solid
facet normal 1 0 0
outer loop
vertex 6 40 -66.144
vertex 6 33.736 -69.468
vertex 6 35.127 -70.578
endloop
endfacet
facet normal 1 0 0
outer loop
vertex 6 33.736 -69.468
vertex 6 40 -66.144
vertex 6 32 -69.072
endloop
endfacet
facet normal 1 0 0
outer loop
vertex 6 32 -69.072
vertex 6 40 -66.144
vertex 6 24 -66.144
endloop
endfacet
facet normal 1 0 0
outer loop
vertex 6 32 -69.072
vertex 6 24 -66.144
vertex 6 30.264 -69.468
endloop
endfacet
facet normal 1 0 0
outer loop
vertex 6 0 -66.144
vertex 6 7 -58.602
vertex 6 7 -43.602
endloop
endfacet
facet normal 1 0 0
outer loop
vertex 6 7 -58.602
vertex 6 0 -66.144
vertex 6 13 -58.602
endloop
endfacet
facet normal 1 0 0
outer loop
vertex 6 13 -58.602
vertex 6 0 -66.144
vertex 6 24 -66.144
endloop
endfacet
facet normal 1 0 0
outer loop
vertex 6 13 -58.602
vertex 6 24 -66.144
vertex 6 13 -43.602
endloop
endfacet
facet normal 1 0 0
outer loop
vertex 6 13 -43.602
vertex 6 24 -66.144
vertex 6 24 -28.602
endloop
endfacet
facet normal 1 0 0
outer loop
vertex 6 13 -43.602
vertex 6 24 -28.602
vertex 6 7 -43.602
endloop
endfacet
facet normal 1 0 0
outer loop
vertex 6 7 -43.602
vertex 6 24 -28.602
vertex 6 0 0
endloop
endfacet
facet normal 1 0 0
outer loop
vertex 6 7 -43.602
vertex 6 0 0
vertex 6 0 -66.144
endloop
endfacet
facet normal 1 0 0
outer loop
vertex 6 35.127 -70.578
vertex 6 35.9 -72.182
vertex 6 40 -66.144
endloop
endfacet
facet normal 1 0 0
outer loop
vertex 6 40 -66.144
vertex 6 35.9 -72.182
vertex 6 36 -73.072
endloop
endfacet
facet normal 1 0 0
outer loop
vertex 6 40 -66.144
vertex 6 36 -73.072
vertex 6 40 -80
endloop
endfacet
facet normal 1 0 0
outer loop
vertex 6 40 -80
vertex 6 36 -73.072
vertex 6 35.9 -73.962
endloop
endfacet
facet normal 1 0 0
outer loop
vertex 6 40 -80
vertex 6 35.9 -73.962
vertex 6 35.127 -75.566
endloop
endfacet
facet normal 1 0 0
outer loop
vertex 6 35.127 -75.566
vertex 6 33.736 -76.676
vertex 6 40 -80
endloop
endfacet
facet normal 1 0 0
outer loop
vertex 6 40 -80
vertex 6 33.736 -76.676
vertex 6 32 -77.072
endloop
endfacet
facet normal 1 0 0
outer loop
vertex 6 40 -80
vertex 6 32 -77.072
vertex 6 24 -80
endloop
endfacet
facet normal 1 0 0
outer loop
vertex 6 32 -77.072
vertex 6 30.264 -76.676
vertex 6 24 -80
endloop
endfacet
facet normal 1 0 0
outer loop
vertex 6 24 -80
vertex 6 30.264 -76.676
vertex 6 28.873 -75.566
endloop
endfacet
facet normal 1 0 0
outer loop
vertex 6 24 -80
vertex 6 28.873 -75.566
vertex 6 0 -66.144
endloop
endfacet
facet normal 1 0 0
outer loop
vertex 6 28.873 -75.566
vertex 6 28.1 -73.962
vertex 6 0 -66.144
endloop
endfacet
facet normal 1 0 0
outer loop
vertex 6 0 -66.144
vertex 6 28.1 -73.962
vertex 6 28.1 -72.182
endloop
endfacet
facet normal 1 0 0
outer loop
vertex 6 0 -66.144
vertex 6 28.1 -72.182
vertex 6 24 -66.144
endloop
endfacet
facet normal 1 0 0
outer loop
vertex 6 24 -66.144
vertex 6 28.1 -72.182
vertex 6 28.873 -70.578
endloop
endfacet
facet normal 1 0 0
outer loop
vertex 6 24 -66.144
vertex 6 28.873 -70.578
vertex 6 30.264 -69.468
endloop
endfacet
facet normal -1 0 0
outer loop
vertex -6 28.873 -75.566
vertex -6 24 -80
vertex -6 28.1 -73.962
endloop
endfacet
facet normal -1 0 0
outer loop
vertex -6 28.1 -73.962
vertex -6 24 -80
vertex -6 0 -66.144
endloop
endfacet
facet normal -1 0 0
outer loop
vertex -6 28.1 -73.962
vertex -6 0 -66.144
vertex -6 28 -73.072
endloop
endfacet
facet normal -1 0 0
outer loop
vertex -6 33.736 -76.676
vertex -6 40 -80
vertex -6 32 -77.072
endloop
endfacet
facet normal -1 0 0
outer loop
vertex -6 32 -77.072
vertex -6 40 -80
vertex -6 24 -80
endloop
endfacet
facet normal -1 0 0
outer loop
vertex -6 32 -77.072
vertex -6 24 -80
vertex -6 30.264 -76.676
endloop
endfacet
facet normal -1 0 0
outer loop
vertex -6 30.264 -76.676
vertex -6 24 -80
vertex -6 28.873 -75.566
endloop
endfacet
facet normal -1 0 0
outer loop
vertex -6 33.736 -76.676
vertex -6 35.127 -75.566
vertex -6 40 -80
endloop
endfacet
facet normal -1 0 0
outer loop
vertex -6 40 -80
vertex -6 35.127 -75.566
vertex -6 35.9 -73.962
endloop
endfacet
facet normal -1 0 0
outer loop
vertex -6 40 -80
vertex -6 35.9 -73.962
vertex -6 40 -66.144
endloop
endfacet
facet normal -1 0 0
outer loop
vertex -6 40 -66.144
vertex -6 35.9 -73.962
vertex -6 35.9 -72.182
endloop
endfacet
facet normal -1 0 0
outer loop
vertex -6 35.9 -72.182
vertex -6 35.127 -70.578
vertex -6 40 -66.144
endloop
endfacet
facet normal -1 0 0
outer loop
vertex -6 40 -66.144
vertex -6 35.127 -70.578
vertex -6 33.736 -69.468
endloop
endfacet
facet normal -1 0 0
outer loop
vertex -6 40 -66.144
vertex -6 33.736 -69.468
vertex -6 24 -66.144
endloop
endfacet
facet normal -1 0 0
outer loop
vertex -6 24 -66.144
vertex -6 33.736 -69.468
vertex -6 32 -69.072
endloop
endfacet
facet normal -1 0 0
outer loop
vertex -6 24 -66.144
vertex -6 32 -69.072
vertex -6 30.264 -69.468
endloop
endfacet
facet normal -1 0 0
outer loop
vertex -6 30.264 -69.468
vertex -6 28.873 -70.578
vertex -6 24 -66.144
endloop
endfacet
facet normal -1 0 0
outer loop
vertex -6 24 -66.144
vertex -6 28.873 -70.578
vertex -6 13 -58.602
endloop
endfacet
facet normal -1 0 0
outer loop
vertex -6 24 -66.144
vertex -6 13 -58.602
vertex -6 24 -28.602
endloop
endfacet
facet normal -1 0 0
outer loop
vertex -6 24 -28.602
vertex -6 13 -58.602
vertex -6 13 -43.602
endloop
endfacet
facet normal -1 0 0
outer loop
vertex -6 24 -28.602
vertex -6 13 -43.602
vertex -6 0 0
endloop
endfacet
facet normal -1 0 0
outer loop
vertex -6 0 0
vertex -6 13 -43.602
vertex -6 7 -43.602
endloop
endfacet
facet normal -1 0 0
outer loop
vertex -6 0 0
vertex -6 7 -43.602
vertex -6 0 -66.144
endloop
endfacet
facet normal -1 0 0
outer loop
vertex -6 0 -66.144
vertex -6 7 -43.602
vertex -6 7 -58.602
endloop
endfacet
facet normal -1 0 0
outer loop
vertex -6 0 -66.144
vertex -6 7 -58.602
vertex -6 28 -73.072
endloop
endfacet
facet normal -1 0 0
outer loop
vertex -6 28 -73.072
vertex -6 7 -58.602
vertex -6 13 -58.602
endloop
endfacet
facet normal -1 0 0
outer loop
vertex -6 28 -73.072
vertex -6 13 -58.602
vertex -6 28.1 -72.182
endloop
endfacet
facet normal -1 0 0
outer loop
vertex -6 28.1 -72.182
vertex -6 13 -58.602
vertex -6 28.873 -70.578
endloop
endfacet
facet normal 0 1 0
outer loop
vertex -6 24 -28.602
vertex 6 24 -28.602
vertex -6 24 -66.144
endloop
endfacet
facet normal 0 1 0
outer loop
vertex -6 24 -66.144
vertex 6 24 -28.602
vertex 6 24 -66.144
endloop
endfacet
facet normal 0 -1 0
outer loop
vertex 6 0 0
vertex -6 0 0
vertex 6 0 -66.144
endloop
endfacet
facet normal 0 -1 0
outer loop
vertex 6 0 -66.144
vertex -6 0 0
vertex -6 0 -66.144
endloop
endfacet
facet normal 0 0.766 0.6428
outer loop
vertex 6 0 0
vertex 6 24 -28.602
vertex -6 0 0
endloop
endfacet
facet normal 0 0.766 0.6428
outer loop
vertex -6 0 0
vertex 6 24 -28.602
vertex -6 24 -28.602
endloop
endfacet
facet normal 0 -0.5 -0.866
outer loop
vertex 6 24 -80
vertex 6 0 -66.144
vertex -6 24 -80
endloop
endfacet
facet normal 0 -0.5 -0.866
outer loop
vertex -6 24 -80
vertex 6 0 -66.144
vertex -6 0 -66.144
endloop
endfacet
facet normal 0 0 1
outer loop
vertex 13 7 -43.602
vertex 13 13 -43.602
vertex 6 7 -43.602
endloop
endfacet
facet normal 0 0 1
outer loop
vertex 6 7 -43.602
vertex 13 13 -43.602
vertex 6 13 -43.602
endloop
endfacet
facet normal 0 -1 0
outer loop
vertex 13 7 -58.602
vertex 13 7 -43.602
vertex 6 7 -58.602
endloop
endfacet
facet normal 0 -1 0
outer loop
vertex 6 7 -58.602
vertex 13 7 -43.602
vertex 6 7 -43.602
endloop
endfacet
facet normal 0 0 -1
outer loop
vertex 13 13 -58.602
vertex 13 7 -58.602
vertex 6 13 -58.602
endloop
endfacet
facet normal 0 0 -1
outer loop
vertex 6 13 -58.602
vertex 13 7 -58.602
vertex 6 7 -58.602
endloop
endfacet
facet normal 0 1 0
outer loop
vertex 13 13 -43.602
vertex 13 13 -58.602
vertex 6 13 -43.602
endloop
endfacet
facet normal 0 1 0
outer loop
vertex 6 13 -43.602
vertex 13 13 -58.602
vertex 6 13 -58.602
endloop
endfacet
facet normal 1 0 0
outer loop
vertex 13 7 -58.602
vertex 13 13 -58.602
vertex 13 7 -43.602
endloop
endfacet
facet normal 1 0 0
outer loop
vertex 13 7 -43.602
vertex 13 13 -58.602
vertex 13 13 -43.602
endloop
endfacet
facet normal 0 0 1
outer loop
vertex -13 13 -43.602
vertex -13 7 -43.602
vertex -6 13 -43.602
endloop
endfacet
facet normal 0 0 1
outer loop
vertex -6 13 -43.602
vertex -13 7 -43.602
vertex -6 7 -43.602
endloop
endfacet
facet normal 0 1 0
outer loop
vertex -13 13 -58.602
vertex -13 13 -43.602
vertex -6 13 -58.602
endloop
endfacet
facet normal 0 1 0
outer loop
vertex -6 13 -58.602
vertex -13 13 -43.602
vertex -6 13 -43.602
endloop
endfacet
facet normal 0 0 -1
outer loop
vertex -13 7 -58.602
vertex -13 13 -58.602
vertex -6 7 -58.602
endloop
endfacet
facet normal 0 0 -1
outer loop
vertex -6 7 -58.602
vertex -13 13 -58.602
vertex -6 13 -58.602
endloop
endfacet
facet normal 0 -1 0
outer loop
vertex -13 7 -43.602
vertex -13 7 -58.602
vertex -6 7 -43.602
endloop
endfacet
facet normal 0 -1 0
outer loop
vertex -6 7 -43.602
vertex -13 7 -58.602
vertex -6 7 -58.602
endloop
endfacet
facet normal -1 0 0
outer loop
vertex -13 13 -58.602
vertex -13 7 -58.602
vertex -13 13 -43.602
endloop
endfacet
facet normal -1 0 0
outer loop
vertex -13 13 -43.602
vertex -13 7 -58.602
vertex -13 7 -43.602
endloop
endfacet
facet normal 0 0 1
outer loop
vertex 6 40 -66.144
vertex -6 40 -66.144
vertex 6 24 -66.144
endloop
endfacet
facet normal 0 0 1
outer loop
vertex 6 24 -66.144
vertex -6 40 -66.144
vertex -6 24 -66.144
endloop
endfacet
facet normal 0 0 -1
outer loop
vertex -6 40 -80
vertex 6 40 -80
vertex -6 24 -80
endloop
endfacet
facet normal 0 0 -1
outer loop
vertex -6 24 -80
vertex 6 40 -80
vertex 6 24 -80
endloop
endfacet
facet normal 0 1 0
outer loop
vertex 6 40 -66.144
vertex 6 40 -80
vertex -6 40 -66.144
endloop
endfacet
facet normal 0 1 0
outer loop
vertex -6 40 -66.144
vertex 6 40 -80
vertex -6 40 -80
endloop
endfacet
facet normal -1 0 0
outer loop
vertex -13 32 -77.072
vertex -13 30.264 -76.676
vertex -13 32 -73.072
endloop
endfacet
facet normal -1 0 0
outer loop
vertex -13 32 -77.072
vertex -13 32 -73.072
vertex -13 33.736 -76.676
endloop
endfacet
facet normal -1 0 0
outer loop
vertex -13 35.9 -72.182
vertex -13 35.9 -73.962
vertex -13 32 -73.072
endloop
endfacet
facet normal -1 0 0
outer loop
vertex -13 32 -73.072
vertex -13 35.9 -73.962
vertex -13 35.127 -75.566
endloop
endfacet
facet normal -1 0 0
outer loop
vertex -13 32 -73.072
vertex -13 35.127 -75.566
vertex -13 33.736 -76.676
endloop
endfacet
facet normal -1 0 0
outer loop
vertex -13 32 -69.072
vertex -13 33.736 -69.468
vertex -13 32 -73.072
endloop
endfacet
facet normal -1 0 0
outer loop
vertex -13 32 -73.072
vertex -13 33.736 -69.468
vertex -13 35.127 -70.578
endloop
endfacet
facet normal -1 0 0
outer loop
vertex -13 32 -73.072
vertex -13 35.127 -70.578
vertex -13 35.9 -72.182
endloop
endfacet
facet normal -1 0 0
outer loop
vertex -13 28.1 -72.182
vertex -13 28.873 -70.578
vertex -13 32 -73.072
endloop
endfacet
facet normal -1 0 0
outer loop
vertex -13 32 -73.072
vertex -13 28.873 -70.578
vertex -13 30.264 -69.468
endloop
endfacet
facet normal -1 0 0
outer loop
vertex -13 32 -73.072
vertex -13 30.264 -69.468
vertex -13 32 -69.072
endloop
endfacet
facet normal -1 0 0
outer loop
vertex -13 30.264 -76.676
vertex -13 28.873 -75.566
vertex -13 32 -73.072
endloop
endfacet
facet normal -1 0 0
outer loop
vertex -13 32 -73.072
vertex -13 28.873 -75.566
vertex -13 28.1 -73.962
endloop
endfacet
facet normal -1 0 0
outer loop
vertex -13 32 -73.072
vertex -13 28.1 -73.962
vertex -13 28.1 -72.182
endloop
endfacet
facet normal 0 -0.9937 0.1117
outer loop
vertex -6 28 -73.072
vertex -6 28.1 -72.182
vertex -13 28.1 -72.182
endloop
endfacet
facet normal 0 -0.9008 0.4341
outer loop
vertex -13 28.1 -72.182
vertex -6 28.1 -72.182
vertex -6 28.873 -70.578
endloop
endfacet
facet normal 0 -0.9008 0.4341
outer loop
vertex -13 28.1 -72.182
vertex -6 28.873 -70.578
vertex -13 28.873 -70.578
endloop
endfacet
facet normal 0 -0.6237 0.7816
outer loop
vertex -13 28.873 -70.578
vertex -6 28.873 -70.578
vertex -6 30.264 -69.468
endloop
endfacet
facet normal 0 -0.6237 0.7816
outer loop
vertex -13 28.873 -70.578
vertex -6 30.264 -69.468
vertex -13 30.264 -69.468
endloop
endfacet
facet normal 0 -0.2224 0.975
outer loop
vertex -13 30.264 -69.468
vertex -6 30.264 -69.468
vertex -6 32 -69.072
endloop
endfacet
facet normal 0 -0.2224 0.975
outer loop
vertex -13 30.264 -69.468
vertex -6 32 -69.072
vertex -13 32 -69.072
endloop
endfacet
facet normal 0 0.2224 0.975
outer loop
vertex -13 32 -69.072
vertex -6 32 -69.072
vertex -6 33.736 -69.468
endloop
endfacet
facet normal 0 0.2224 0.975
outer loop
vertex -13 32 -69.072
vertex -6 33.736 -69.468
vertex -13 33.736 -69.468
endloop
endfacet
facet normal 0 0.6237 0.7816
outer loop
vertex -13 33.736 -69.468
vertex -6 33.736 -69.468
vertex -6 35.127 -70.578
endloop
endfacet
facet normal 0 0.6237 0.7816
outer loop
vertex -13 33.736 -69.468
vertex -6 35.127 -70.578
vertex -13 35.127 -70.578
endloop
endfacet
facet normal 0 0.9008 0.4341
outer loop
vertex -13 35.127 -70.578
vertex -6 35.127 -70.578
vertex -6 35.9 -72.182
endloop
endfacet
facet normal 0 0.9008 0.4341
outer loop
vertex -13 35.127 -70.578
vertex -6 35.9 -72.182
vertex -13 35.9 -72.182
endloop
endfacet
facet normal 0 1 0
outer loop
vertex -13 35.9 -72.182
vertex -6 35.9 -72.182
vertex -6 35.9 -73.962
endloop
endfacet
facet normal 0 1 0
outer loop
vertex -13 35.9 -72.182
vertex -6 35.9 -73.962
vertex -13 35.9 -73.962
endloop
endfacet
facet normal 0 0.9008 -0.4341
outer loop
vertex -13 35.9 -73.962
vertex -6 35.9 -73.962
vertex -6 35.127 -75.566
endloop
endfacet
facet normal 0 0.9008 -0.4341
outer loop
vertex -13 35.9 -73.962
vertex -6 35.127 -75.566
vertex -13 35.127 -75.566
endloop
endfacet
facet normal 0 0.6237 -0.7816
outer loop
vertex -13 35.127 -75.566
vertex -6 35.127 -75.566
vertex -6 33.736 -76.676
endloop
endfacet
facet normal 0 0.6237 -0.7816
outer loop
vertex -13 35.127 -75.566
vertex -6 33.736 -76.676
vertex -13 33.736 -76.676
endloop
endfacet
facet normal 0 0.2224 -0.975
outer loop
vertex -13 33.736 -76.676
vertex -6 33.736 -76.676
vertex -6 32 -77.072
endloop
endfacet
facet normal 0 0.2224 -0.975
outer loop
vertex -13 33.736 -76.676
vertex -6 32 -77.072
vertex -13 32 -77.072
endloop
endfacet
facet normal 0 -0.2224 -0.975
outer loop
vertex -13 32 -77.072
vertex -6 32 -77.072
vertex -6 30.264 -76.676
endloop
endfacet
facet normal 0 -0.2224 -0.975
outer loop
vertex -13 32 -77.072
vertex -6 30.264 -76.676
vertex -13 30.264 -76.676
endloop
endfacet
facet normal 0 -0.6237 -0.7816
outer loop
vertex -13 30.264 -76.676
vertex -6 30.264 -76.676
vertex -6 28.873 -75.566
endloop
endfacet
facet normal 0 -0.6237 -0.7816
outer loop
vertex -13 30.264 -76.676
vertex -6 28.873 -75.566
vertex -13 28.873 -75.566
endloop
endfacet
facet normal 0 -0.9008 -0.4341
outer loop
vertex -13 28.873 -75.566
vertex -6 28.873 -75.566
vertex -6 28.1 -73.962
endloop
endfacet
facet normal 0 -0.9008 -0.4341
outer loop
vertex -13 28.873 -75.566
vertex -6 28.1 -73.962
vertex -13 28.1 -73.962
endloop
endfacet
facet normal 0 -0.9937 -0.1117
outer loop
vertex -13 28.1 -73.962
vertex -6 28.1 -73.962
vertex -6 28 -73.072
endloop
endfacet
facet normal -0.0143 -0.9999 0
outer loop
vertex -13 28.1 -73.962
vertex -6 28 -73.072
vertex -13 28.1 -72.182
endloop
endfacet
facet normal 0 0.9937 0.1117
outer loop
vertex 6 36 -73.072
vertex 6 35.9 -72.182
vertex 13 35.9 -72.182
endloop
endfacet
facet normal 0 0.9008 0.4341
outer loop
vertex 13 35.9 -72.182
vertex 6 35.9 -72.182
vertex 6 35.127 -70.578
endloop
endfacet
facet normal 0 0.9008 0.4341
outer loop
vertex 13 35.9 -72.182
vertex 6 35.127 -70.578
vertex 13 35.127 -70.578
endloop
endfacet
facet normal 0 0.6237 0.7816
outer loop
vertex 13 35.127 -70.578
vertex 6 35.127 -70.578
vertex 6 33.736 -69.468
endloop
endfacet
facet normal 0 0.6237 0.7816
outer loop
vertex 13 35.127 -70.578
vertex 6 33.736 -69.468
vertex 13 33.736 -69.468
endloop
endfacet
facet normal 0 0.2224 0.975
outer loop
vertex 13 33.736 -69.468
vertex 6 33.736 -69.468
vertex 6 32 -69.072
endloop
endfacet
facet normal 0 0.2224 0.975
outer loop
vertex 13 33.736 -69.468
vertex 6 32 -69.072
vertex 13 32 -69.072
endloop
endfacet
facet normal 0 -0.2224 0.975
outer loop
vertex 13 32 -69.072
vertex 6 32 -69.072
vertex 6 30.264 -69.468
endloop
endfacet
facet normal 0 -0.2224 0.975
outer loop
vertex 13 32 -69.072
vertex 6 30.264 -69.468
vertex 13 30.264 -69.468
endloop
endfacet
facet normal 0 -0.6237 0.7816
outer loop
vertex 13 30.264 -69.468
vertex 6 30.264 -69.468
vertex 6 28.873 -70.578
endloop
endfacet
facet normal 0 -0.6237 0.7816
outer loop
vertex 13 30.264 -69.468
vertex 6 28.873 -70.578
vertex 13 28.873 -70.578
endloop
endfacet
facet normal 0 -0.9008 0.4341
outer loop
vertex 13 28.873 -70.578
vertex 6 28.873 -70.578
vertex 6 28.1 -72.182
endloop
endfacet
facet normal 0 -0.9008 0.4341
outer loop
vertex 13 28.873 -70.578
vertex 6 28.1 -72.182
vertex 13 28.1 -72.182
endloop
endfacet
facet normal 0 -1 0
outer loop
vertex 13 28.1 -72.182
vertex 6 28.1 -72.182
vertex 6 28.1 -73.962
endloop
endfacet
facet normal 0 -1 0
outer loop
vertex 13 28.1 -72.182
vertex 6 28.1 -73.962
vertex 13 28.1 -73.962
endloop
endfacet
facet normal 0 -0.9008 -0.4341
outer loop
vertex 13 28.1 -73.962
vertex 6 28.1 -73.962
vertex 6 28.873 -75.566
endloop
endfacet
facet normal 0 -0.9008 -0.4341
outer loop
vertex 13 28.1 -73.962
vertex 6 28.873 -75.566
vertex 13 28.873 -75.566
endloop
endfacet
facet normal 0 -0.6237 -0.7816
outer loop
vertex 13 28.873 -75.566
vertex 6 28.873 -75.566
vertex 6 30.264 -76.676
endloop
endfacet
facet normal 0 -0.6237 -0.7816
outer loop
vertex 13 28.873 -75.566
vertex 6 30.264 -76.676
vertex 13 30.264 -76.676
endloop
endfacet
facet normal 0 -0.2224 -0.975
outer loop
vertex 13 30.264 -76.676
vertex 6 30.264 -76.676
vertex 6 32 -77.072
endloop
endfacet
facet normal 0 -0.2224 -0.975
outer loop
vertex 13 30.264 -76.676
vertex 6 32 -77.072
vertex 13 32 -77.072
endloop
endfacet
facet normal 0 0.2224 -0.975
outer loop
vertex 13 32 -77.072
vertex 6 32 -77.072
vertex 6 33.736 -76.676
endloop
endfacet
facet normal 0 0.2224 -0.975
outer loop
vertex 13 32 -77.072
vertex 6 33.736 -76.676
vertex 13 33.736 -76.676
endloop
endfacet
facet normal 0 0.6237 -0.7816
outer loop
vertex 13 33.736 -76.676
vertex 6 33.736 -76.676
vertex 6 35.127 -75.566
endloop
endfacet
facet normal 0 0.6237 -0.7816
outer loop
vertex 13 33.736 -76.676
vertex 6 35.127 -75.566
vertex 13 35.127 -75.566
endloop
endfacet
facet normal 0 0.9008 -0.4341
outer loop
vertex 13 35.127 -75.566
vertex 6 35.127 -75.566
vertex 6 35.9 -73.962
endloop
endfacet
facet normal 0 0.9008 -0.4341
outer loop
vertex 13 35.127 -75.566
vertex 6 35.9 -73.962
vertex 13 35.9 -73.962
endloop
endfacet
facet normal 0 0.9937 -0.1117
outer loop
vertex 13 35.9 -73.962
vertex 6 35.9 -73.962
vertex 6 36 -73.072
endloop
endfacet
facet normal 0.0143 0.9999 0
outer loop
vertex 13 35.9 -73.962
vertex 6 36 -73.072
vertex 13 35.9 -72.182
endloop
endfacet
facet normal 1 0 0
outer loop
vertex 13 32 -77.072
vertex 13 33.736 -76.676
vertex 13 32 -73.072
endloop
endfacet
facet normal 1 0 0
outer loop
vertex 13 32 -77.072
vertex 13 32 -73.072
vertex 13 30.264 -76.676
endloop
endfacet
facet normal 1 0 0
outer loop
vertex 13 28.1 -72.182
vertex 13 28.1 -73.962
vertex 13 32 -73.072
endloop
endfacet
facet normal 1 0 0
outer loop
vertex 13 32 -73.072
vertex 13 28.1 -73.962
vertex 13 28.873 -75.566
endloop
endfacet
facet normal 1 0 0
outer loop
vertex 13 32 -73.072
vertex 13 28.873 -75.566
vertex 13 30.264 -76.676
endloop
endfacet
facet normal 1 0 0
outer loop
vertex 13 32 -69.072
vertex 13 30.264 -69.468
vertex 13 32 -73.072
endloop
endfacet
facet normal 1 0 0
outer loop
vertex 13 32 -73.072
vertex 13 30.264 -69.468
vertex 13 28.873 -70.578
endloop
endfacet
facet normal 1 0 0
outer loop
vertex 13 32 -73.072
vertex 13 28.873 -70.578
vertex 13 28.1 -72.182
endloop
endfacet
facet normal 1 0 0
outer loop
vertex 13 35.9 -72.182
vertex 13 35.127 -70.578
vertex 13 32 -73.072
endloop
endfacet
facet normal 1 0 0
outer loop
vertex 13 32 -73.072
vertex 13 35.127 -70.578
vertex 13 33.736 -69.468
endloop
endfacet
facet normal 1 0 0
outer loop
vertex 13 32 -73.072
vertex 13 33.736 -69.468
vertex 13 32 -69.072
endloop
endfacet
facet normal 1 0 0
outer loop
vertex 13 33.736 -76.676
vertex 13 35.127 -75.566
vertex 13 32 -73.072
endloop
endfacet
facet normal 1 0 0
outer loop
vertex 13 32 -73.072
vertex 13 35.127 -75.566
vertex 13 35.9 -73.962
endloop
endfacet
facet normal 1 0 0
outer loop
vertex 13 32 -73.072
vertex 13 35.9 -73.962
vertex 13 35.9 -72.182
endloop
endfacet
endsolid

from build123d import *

# Parameters (mm, degrees)
SKETCH1_W           = 12
SKETCH1_H           = 24
BOSS_EXTRUDE1_DEPTH = 80
CUT_EXTRUDE1_DEPTH  = 52
SKETCH3_W           = 15
SKETCH3_H           = 6
BOSS_EXTRUDE2_DEPTH = 7
SKETCH4_W           = 12
SKETCH4_H           = 13.856406461
BOSS_EXTRUDE3_DEPTH = 16
SKETCH6_R           = 4
BOSS_EXTRUDE4_DEPTH = 13


with BuildPart() as part:
    # Sketch1 → Boss-Extrude1 (new body)
    with BuildSketch(Plane.XY):
        with Locations((0, 12)):
            Rectangle(SKETCH1_W, SKETCH1_H)
    extrude(amount=-BOSS_EXTRUDE1_DEPTH)

    # Sketch2 → Cut-Extrude1 (cut)
    with BuildSketch(Plane(origin=(6, 0, 0), x_dir=(0, 0, -1), z_dir=(1, 0, 0))):
        Polygon((0, 24), (0, 0), (28.602086222, 24), align=None)
        Polygon((80, 24), (66.143593539, 0), (80, 0), align=None)
    extrude(amount=-CUT_EXTRUDE1_DEPTH, mode=Mode.SUBTRACT)

    # Sketch3 → Boss-Extrude2 (add)
    with BuildSketch(Plane(origin=(6, 0, 0), x_dir=(0, 0, -1), z_dir=(1, 0, 0))):
        with Locations((51.102086222, 10)):
            Rectangle(SKETCH3_W, SKETCH3_H)
    boss_extrude2 = extrude(amount=BOSS_EXTRUDE2_DEPTH)

    # Mirror1: Boss-Extrude2 across plane
    add(boss_extrude2.mirror(Plane(origin=(0, 0, 0), x_dir=(0, 0, 1), z_dir=(1, 0, 0))))

    # Sketch4 → Boss-Extrude3 (add)
    with BuildSketch(Plane(origin=(0, 24, 0), x_dir=(1, 0, 0), z_dir=(0, 1, 0))):
        with Locations((0, 73.071796769)):
            Rectangle(SKETCH4_W, SKETCH4_H)
    extrude(amount=BOSS_EXTRUDE3_DEPTH)

    # Sketch6 → Boss-Extrude4 (add, symmetric)
    with BuildSketch(Plane(origin=(0, 0, 0), x_dir=(0, 0, -1), z_dir=(1, 0, 0))):
        with Locations(Location((73.07179677, 32, 0), (0, 0, 180))):
            Circle(SKETCH6_R)
    extrude(amount=BOSS_EXTRUDE4_DEPTH, both=True)


solid = part.part
